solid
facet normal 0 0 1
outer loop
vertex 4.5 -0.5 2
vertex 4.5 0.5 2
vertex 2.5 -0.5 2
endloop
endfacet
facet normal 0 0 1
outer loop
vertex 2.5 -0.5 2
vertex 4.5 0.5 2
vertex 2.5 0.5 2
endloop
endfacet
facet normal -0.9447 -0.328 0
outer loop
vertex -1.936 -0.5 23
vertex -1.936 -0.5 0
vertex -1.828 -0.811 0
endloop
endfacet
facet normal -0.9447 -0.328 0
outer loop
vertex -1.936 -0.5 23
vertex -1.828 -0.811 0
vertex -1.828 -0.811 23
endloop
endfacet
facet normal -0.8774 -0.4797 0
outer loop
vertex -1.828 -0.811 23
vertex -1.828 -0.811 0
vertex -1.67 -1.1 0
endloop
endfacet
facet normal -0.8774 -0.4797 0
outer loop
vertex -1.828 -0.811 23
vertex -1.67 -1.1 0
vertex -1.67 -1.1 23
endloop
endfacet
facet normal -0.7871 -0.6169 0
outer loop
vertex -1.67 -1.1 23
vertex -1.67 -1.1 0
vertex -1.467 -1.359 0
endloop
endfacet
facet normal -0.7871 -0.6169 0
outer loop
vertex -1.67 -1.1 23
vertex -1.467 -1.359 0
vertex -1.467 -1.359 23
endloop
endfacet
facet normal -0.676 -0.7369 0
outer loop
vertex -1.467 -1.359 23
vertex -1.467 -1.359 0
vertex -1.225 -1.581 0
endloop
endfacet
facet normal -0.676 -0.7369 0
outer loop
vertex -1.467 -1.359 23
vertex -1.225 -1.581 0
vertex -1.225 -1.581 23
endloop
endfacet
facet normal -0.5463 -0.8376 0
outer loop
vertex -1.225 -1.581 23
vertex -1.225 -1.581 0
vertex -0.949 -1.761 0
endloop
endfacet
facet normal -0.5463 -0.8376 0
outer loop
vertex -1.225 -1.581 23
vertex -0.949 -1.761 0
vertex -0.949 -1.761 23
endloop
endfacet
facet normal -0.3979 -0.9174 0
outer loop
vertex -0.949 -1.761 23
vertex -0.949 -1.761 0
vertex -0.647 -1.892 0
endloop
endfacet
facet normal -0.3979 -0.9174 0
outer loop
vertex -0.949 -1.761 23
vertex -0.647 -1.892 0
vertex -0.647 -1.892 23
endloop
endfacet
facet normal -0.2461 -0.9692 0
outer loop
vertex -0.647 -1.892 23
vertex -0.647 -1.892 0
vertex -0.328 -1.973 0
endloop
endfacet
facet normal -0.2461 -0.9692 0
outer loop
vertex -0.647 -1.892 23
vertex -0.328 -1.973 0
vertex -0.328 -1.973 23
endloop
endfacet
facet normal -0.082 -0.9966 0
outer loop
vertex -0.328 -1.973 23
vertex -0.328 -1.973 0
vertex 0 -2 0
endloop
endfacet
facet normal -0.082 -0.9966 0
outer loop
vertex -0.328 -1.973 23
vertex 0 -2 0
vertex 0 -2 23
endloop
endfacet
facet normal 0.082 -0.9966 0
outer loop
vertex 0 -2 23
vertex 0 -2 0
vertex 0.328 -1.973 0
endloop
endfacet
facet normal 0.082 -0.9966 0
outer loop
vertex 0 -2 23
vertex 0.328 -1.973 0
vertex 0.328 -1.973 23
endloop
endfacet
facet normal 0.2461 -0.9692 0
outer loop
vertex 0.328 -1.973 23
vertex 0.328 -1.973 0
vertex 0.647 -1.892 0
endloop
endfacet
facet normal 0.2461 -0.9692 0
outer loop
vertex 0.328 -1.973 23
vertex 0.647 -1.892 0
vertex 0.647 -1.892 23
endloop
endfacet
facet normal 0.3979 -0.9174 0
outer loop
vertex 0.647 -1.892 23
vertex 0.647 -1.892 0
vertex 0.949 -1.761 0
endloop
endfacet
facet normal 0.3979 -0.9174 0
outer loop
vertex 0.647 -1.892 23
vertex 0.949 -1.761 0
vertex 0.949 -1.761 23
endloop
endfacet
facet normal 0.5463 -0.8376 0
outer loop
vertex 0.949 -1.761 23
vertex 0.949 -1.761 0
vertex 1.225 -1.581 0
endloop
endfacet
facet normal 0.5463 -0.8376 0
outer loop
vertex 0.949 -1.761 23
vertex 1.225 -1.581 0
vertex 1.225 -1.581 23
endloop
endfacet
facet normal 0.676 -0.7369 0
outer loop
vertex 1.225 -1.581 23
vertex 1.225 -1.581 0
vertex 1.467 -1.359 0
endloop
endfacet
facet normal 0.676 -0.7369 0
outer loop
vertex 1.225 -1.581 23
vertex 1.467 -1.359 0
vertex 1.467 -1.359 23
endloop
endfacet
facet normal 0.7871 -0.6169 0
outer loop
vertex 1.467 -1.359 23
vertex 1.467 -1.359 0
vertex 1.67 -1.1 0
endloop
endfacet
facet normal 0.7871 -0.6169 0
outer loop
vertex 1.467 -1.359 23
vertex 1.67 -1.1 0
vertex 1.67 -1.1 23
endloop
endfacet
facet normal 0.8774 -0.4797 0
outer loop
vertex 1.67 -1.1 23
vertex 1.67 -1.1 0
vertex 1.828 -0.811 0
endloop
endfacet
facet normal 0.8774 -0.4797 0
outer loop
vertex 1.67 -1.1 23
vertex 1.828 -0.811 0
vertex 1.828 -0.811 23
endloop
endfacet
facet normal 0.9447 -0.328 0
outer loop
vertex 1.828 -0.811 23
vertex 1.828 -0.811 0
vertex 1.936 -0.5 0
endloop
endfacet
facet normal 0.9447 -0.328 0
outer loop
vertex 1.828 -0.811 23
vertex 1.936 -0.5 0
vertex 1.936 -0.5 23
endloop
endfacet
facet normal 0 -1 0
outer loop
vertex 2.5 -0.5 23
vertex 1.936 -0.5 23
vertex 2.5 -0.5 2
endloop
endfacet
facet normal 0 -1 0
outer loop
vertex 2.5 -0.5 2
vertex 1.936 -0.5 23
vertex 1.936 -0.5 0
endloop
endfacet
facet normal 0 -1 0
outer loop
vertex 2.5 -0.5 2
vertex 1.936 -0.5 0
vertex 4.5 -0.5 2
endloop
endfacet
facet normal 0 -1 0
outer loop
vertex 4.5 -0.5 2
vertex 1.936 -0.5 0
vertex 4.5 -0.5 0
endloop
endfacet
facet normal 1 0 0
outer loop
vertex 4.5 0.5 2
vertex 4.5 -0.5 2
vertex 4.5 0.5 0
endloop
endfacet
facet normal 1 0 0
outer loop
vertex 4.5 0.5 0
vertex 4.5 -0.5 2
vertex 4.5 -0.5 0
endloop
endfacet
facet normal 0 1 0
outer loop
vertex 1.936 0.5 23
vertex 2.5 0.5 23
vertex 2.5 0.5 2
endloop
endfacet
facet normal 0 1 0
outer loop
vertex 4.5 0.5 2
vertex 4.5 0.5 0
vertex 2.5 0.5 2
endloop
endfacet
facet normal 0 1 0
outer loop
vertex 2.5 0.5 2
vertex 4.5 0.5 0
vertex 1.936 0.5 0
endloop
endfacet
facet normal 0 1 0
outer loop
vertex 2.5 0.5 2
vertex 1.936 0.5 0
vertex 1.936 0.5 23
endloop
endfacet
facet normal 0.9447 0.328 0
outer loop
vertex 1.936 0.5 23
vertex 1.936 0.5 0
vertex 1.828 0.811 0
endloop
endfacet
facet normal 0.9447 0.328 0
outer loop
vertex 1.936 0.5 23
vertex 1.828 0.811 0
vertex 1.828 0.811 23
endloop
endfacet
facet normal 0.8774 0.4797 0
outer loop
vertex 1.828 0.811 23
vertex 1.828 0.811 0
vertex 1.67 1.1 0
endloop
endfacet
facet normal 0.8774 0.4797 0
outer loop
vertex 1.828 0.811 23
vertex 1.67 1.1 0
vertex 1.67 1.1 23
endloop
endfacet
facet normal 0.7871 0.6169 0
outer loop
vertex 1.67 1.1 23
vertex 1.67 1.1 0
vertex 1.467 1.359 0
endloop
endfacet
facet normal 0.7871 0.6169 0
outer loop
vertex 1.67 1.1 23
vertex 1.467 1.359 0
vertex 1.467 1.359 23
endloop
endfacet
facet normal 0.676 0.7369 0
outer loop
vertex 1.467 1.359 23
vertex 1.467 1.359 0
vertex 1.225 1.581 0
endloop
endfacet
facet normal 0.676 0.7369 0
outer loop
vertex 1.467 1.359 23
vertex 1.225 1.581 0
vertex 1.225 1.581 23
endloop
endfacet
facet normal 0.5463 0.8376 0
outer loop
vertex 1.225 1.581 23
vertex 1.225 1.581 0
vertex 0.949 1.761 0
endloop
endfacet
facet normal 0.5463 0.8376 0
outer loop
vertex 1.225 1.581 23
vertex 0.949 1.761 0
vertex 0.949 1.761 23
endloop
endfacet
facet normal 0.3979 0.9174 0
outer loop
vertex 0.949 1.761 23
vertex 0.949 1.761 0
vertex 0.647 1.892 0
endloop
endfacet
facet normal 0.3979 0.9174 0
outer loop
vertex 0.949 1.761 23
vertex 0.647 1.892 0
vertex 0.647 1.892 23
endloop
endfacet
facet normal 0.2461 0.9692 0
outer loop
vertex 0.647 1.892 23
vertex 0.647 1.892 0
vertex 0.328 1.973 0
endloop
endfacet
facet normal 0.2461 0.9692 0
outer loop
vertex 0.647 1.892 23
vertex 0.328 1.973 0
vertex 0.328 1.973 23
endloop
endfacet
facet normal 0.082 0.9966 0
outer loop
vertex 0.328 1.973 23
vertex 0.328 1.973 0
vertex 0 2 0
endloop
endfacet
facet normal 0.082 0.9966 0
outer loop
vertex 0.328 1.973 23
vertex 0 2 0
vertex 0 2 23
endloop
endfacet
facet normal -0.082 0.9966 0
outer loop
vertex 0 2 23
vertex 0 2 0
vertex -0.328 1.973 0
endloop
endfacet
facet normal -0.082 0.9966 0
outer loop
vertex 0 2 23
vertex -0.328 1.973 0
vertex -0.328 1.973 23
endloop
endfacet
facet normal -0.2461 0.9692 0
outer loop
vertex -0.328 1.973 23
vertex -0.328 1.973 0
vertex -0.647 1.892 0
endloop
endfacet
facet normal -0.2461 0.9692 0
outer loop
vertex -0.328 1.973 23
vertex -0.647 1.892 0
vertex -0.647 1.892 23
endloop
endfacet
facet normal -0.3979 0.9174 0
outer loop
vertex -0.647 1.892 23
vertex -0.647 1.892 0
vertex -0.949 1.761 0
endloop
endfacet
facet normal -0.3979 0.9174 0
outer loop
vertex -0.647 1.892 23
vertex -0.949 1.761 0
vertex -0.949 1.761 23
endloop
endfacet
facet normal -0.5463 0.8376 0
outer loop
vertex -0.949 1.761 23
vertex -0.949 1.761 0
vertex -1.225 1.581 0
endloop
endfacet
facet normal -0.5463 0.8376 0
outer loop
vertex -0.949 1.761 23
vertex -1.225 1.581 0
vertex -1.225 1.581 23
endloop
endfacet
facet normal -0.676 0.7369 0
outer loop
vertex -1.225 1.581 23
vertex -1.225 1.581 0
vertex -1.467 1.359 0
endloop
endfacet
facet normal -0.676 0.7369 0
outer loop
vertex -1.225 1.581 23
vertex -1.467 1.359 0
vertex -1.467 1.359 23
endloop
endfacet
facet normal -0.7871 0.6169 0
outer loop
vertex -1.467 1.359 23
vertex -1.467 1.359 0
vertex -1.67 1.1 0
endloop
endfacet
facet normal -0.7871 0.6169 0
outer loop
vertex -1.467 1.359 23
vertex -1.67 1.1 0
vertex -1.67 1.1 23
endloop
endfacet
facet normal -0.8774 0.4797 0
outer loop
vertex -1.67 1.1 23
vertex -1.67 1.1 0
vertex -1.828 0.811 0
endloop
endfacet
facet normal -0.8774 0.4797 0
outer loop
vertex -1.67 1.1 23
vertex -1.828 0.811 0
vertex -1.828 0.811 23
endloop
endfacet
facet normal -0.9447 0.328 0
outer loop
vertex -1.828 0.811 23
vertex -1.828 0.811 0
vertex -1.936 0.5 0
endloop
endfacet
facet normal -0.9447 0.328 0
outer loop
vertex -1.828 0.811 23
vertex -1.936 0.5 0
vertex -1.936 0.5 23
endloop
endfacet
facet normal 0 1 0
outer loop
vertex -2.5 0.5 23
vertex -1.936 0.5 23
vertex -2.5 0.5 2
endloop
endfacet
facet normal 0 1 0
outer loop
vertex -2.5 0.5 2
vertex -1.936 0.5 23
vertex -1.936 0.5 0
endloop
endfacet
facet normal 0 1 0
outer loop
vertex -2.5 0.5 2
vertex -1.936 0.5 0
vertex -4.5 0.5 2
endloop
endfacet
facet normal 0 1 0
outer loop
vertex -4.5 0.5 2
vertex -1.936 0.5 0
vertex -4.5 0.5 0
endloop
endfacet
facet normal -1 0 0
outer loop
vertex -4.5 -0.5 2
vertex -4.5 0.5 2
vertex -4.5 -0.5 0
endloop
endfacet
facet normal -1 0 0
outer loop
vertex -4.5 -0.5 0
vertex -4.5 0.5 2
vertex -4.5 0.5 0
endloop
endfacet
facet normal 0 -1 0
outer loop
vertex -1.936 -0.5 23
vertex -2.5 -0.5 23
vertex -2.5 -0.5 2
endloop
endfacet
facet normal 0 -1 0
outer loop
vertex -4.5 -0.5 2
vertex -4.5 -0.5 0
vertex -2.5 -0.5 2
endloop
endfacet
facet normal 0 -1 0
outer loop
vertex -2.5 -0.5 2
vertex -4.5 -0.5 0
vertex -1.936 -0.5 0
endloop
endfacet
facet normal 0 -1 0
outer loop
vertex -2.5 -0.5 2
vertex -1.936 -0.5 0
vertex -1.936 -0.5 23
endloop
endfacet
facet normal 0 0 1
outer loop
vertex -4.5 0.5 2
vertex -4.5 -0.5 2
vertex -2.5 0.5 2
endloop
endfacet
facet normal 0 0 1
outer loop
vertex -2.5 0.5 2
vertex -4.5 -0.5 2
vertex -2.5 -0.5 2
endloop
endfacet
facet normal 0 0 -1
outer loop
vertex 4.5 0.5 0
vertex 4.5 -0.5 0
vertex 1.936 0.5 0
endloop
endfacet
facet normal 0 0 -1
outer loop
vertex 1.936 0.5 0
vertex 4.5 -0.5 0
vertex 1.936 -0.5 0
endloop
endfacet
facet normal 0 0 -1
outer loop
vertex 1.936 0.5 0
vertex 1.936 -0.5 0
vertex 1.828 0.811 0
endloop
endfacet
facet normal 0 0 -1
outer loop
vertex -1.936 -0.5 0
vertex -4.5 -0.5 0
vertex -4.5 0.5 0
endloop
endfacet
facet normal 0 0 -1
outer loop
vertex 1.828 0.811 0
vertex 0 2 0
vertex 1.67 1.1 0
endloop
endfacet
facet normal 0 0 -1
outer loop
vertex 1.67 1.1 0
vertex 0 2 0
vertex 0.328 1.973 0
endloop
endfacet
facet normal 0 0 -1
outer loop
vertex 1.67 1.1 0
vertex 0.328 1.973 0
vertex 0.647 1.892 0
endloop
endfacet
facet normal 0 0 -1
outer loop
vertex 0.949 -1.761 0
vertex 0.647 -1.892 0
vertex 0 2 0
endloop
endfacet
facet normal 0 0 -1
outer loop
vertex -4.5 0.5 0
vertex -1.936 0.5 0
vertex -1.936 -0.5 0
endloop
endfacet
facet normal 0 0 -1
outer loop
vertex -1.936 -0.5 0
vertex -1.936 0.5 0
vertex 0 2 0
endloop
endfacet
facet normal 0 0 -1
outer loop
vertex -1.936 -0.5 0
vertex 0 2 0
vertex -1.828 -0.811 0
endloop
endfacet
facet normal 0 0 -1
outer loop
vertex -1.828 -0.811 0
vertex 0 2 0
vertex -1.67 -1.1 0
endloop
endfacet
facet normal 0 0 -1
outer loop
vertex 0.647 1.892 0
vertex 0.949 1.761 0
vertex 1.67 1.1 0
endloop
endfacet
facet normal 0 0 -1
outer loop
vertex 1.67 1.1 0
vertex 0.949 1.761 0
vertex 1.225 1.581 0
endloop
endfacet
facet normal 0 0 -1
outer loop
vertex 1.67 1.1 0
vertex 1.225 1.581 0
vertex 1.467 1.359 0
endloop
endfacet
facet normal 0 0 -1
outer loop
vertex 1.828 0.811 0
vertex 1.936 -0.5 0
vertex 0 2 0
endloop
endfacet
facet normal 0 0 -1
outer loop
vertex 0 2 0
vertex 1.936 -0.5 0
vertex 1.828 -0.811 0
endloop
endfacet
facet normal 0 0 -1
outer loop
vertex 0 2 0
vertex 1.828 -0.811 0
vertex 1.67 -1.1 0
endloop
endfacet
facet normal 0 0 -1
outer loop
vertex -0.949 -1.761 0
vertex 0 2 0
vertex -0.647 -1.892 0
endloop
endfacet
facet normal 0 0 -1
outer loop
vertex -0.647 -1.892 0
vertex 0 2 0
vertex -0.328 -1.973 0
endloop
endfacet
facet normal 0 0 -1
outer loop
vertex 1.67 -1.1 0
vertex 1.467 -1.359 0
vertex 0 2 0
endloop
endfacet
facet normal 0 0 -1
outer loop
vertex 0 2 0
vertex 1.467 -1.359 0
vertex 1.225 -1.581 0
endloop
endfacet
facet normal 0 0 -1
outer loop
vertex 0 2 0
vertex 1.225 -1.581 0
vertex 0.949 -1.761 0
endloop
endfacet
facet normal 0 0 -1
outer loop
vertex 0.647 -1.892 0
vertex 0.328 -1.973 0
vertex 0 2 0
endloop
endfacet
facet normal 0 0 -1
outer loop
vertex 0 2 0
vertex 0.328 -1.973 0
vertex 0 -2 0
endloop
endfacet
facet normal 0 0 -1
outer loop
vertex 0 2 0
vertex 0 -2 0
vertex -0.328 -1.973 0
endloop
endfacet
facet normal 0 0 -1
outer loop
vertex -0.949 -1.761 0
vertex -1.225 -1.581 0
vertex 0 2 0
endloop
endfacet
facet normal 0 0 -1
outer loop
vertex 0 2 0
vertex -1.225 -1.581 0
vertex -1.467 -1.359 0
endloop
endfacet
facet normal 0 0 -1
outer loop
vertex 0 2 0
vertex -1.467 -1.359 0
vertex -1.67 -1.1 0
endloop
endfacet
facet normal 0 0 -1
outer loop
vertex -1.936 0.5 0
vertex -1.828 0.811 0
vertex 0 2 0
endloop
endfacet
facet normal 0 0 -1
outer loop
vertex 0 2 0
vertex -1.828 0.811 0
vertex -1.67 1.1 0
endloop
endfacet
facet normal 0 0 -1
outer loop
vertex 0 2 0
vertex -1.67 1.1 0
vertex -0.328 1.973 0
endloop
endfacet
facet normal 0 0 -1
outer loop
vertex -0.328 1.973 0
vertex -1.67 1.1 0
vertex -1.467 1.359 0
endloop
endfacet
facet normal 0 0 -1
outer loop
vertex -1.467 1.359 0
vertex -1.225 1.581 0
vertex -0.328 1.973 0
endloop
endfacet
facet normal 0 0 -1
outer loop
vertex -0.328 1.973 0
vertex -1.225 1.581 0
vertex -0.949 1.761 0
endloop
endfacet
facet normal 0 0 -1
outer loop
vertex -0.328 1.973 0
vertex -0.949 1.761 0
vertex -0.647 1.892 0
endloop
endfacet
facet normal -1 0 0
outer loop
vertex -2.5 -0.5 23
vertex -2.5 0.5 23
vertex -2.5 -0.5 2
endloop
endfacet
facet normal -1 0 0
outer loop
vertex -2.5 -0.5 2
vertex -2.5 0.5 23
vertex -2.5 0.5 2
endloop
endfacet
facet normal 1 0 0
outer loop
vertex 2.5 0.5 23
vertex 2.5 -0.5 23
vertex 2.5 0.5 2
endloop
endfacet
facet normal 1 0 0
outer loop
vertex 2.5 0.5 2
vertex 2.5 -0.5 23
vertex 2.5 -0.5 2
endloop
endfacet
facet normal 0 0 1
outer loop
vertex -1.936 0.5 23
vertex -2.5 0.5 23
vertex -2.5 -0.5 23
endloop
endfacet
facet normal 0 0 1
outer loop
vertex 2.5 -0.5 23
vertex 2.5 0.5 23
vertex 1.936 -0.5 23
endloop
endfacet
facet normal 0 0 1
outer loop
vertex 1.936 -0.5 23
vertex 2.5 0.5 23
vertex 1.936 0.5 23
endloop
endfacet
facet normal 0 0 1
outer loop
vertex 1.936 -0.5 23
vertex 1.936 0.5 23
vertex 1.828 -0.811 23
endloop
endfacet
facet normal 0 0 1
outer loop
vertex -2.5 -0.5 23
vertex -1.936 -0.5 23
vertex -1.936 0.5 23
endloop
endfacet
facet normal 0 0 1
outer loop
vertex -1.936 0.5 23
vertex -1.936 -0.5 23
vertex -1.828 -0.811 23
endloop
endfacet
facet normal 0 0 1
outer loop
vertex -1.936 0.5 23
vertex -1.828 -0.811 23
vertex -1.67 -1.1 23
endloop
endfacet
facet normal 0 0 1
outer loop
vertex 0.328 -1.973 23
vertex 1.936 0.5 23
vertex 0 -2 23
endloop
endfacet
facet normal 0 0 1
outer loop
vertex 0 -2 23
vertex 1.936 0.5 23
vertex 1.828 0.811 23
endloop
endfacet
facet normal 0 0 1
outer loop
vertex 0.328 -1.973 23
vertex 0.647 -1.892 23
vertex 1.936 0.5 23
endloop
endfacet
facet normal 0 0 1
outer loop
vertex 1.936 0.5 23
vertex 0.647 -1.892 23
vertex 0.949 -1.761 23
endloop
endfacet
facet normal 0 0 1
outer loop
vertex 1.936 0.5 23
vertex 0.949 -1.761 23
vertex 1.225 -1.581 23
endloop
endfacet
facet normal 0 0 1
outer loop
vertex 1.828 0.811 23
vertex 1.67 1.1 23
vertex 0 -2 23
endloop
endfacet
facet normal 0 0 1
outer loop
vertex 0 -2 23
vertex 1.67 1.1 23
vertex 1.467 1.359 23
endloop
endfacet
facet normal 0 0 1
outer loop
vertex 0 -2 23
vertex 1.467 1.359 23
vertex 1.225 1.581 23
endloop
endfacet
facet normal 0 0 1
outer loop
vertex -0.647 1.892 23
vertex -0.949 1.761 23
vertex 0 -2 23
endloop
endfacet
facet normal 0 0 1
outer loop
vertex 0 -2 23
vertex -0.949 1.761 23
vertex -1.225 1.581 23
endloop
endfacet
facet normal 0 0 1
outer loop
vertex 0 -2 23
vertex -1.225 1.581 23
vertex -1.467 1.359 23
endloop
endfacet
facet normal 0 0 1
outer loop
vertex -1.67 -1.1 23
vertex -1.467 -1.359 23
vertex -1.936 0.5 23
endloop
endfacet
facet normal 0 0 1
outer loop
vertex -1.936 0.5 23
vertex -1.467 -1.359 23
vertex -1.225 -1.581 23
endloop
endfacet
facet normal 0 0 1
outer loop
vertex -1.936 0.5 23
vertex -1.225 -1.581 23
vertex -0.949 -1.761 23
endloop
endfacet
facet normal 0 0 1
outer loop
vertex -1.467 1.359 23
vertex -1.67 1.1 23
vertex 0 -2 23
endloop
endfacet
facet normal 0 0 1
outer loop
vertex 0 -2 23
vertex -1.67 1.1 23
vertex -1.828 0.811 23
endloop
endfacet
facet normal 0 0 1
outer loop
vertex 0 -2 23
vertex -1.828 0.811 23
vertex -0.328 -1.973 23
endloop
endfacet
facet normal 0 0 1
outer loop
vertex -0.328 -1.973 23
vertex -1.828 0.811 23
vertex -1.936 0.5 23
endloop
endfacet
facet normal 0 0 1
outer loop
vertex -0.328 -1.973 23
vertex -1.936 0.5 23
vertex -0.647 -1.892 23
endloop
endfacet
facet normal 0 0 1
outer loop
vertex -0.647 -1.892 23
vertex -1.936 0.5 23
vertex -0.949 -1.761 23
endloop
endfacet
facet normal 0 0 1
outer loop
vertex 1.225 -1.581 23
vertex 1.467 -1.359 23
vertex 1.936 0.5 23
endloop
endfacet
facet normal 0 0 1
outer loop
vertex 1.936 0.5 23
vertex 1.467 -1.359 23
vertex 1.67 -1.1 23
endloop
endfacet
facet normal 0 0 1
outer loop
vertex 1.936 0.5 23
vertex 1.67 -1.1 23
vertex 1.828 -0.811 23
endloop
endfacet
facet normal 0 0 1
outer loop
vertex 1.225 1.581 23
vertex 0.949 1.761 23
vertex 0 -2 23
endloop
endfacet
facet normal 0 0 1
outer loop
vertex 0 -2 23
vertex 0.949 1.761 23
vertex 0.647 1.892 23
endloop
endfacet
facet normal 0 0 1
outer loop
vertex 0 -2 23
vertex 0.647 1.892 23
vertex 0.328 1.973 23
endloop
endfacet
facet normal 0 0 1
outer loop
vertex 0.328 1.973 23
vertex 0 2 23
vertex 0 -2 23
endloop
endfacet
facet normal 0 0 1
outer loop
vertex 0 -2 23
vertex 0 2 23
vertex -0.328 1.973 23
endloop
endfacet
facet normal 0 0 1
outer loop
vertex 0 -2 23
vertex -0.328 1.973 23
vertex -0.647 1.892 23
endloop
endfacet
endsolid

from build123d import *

# Parameters (mm, degrees)
BOSS_EXTRUDE2_DEPTH = 2
BOSS_EXTRUDE4_DEPTH = 21
BOSS_EXTRUDE3_DEPTH = 20


with BuildPart() as part:
    # Sketch1 → Boss-Extrude2 (new body)
    with BuildSketch(Plane.XY):
        with BuildLine():
            Line((1.936491673, 0.5), (4.5, 0.5))
            Line((4.5, 0.5), (4.5, -0.5))
            Line((4.5, -0.5), (1.936491673, -0.5))
            ThreePointArc((1.936491673, -0.5), (0, -2), (-1.936491673, -0.5))
            Line((-1.936491673, -0.5), (-4.5, -0.5))
            Line((-4.5, -0.5), (-4.5, 0.5))
            Line((-4.5, 0.5), (-1.936491673, 0.5))
            ThreePointArc((-1.936491673, 0.5), (0, 2), (1.936491673, 0.5))
        make_face()
    extrude(amount=BOSS_EXTRUDE2_DEPTH)

    # Sketch2<2> → Boss-Extrude4 (add)
    with BuildSketch(Plane.XY.offset(2)):
        with BuildLine():
            Line((1.936491673, 0.5), (2.5, 0.5))
            Line((2.5, 0.5), (2.5, -0.5))
            Line((2.5, -0.5), (1.936491673, -0.5))
            ThreePointArc((1.936491673, -0.5), (0, -2), (-1.936491673, -0.5))
            Line((-1.936491673, -0.5), (-2.5, -0.5))
            Line((-2.5, -0.5), (-2.5, 0.5))
            Line((-2.5, 0.5), (-1.936491673, 0.5))
            ThreePointArc((-1.936491673, 0.5), (0, 2), (1.936491673, 0.5))
        make_face()
    extrude(amount=BOSS_EXTRUDE4_DEPTH)

    # Sketch2 → Boss-Extrude3 (add)
    with BuildSketch(Plane.XY.offset(2)):
        with BuildLine():
            Line((1.936491673, 0.5), (2.5, 0.5))
            Line((2.5, 0.5), (2.5, -0.5))
            Line((2.5, -0.5), (1.936491673, -0.5))
            ThreePointArc((1.936491673, -0.5), (0, -2), (-1.936491673, -0.5))
            Line((-1.936491673, -0.5), (-2.5, -0.5))
            Line((-2.5, -0.5), (-2.5, 0.5))
            Line((-2.5, 0.5), (-1.936491673, 0.5))
            ThreePointArc((-1.936491673, 0.5), (0, 2), (1.936491673, 0.5))
        make_face()
    extrude(amount=BOSS_EXTRUDE3_DEPTH)


solid = part.part
